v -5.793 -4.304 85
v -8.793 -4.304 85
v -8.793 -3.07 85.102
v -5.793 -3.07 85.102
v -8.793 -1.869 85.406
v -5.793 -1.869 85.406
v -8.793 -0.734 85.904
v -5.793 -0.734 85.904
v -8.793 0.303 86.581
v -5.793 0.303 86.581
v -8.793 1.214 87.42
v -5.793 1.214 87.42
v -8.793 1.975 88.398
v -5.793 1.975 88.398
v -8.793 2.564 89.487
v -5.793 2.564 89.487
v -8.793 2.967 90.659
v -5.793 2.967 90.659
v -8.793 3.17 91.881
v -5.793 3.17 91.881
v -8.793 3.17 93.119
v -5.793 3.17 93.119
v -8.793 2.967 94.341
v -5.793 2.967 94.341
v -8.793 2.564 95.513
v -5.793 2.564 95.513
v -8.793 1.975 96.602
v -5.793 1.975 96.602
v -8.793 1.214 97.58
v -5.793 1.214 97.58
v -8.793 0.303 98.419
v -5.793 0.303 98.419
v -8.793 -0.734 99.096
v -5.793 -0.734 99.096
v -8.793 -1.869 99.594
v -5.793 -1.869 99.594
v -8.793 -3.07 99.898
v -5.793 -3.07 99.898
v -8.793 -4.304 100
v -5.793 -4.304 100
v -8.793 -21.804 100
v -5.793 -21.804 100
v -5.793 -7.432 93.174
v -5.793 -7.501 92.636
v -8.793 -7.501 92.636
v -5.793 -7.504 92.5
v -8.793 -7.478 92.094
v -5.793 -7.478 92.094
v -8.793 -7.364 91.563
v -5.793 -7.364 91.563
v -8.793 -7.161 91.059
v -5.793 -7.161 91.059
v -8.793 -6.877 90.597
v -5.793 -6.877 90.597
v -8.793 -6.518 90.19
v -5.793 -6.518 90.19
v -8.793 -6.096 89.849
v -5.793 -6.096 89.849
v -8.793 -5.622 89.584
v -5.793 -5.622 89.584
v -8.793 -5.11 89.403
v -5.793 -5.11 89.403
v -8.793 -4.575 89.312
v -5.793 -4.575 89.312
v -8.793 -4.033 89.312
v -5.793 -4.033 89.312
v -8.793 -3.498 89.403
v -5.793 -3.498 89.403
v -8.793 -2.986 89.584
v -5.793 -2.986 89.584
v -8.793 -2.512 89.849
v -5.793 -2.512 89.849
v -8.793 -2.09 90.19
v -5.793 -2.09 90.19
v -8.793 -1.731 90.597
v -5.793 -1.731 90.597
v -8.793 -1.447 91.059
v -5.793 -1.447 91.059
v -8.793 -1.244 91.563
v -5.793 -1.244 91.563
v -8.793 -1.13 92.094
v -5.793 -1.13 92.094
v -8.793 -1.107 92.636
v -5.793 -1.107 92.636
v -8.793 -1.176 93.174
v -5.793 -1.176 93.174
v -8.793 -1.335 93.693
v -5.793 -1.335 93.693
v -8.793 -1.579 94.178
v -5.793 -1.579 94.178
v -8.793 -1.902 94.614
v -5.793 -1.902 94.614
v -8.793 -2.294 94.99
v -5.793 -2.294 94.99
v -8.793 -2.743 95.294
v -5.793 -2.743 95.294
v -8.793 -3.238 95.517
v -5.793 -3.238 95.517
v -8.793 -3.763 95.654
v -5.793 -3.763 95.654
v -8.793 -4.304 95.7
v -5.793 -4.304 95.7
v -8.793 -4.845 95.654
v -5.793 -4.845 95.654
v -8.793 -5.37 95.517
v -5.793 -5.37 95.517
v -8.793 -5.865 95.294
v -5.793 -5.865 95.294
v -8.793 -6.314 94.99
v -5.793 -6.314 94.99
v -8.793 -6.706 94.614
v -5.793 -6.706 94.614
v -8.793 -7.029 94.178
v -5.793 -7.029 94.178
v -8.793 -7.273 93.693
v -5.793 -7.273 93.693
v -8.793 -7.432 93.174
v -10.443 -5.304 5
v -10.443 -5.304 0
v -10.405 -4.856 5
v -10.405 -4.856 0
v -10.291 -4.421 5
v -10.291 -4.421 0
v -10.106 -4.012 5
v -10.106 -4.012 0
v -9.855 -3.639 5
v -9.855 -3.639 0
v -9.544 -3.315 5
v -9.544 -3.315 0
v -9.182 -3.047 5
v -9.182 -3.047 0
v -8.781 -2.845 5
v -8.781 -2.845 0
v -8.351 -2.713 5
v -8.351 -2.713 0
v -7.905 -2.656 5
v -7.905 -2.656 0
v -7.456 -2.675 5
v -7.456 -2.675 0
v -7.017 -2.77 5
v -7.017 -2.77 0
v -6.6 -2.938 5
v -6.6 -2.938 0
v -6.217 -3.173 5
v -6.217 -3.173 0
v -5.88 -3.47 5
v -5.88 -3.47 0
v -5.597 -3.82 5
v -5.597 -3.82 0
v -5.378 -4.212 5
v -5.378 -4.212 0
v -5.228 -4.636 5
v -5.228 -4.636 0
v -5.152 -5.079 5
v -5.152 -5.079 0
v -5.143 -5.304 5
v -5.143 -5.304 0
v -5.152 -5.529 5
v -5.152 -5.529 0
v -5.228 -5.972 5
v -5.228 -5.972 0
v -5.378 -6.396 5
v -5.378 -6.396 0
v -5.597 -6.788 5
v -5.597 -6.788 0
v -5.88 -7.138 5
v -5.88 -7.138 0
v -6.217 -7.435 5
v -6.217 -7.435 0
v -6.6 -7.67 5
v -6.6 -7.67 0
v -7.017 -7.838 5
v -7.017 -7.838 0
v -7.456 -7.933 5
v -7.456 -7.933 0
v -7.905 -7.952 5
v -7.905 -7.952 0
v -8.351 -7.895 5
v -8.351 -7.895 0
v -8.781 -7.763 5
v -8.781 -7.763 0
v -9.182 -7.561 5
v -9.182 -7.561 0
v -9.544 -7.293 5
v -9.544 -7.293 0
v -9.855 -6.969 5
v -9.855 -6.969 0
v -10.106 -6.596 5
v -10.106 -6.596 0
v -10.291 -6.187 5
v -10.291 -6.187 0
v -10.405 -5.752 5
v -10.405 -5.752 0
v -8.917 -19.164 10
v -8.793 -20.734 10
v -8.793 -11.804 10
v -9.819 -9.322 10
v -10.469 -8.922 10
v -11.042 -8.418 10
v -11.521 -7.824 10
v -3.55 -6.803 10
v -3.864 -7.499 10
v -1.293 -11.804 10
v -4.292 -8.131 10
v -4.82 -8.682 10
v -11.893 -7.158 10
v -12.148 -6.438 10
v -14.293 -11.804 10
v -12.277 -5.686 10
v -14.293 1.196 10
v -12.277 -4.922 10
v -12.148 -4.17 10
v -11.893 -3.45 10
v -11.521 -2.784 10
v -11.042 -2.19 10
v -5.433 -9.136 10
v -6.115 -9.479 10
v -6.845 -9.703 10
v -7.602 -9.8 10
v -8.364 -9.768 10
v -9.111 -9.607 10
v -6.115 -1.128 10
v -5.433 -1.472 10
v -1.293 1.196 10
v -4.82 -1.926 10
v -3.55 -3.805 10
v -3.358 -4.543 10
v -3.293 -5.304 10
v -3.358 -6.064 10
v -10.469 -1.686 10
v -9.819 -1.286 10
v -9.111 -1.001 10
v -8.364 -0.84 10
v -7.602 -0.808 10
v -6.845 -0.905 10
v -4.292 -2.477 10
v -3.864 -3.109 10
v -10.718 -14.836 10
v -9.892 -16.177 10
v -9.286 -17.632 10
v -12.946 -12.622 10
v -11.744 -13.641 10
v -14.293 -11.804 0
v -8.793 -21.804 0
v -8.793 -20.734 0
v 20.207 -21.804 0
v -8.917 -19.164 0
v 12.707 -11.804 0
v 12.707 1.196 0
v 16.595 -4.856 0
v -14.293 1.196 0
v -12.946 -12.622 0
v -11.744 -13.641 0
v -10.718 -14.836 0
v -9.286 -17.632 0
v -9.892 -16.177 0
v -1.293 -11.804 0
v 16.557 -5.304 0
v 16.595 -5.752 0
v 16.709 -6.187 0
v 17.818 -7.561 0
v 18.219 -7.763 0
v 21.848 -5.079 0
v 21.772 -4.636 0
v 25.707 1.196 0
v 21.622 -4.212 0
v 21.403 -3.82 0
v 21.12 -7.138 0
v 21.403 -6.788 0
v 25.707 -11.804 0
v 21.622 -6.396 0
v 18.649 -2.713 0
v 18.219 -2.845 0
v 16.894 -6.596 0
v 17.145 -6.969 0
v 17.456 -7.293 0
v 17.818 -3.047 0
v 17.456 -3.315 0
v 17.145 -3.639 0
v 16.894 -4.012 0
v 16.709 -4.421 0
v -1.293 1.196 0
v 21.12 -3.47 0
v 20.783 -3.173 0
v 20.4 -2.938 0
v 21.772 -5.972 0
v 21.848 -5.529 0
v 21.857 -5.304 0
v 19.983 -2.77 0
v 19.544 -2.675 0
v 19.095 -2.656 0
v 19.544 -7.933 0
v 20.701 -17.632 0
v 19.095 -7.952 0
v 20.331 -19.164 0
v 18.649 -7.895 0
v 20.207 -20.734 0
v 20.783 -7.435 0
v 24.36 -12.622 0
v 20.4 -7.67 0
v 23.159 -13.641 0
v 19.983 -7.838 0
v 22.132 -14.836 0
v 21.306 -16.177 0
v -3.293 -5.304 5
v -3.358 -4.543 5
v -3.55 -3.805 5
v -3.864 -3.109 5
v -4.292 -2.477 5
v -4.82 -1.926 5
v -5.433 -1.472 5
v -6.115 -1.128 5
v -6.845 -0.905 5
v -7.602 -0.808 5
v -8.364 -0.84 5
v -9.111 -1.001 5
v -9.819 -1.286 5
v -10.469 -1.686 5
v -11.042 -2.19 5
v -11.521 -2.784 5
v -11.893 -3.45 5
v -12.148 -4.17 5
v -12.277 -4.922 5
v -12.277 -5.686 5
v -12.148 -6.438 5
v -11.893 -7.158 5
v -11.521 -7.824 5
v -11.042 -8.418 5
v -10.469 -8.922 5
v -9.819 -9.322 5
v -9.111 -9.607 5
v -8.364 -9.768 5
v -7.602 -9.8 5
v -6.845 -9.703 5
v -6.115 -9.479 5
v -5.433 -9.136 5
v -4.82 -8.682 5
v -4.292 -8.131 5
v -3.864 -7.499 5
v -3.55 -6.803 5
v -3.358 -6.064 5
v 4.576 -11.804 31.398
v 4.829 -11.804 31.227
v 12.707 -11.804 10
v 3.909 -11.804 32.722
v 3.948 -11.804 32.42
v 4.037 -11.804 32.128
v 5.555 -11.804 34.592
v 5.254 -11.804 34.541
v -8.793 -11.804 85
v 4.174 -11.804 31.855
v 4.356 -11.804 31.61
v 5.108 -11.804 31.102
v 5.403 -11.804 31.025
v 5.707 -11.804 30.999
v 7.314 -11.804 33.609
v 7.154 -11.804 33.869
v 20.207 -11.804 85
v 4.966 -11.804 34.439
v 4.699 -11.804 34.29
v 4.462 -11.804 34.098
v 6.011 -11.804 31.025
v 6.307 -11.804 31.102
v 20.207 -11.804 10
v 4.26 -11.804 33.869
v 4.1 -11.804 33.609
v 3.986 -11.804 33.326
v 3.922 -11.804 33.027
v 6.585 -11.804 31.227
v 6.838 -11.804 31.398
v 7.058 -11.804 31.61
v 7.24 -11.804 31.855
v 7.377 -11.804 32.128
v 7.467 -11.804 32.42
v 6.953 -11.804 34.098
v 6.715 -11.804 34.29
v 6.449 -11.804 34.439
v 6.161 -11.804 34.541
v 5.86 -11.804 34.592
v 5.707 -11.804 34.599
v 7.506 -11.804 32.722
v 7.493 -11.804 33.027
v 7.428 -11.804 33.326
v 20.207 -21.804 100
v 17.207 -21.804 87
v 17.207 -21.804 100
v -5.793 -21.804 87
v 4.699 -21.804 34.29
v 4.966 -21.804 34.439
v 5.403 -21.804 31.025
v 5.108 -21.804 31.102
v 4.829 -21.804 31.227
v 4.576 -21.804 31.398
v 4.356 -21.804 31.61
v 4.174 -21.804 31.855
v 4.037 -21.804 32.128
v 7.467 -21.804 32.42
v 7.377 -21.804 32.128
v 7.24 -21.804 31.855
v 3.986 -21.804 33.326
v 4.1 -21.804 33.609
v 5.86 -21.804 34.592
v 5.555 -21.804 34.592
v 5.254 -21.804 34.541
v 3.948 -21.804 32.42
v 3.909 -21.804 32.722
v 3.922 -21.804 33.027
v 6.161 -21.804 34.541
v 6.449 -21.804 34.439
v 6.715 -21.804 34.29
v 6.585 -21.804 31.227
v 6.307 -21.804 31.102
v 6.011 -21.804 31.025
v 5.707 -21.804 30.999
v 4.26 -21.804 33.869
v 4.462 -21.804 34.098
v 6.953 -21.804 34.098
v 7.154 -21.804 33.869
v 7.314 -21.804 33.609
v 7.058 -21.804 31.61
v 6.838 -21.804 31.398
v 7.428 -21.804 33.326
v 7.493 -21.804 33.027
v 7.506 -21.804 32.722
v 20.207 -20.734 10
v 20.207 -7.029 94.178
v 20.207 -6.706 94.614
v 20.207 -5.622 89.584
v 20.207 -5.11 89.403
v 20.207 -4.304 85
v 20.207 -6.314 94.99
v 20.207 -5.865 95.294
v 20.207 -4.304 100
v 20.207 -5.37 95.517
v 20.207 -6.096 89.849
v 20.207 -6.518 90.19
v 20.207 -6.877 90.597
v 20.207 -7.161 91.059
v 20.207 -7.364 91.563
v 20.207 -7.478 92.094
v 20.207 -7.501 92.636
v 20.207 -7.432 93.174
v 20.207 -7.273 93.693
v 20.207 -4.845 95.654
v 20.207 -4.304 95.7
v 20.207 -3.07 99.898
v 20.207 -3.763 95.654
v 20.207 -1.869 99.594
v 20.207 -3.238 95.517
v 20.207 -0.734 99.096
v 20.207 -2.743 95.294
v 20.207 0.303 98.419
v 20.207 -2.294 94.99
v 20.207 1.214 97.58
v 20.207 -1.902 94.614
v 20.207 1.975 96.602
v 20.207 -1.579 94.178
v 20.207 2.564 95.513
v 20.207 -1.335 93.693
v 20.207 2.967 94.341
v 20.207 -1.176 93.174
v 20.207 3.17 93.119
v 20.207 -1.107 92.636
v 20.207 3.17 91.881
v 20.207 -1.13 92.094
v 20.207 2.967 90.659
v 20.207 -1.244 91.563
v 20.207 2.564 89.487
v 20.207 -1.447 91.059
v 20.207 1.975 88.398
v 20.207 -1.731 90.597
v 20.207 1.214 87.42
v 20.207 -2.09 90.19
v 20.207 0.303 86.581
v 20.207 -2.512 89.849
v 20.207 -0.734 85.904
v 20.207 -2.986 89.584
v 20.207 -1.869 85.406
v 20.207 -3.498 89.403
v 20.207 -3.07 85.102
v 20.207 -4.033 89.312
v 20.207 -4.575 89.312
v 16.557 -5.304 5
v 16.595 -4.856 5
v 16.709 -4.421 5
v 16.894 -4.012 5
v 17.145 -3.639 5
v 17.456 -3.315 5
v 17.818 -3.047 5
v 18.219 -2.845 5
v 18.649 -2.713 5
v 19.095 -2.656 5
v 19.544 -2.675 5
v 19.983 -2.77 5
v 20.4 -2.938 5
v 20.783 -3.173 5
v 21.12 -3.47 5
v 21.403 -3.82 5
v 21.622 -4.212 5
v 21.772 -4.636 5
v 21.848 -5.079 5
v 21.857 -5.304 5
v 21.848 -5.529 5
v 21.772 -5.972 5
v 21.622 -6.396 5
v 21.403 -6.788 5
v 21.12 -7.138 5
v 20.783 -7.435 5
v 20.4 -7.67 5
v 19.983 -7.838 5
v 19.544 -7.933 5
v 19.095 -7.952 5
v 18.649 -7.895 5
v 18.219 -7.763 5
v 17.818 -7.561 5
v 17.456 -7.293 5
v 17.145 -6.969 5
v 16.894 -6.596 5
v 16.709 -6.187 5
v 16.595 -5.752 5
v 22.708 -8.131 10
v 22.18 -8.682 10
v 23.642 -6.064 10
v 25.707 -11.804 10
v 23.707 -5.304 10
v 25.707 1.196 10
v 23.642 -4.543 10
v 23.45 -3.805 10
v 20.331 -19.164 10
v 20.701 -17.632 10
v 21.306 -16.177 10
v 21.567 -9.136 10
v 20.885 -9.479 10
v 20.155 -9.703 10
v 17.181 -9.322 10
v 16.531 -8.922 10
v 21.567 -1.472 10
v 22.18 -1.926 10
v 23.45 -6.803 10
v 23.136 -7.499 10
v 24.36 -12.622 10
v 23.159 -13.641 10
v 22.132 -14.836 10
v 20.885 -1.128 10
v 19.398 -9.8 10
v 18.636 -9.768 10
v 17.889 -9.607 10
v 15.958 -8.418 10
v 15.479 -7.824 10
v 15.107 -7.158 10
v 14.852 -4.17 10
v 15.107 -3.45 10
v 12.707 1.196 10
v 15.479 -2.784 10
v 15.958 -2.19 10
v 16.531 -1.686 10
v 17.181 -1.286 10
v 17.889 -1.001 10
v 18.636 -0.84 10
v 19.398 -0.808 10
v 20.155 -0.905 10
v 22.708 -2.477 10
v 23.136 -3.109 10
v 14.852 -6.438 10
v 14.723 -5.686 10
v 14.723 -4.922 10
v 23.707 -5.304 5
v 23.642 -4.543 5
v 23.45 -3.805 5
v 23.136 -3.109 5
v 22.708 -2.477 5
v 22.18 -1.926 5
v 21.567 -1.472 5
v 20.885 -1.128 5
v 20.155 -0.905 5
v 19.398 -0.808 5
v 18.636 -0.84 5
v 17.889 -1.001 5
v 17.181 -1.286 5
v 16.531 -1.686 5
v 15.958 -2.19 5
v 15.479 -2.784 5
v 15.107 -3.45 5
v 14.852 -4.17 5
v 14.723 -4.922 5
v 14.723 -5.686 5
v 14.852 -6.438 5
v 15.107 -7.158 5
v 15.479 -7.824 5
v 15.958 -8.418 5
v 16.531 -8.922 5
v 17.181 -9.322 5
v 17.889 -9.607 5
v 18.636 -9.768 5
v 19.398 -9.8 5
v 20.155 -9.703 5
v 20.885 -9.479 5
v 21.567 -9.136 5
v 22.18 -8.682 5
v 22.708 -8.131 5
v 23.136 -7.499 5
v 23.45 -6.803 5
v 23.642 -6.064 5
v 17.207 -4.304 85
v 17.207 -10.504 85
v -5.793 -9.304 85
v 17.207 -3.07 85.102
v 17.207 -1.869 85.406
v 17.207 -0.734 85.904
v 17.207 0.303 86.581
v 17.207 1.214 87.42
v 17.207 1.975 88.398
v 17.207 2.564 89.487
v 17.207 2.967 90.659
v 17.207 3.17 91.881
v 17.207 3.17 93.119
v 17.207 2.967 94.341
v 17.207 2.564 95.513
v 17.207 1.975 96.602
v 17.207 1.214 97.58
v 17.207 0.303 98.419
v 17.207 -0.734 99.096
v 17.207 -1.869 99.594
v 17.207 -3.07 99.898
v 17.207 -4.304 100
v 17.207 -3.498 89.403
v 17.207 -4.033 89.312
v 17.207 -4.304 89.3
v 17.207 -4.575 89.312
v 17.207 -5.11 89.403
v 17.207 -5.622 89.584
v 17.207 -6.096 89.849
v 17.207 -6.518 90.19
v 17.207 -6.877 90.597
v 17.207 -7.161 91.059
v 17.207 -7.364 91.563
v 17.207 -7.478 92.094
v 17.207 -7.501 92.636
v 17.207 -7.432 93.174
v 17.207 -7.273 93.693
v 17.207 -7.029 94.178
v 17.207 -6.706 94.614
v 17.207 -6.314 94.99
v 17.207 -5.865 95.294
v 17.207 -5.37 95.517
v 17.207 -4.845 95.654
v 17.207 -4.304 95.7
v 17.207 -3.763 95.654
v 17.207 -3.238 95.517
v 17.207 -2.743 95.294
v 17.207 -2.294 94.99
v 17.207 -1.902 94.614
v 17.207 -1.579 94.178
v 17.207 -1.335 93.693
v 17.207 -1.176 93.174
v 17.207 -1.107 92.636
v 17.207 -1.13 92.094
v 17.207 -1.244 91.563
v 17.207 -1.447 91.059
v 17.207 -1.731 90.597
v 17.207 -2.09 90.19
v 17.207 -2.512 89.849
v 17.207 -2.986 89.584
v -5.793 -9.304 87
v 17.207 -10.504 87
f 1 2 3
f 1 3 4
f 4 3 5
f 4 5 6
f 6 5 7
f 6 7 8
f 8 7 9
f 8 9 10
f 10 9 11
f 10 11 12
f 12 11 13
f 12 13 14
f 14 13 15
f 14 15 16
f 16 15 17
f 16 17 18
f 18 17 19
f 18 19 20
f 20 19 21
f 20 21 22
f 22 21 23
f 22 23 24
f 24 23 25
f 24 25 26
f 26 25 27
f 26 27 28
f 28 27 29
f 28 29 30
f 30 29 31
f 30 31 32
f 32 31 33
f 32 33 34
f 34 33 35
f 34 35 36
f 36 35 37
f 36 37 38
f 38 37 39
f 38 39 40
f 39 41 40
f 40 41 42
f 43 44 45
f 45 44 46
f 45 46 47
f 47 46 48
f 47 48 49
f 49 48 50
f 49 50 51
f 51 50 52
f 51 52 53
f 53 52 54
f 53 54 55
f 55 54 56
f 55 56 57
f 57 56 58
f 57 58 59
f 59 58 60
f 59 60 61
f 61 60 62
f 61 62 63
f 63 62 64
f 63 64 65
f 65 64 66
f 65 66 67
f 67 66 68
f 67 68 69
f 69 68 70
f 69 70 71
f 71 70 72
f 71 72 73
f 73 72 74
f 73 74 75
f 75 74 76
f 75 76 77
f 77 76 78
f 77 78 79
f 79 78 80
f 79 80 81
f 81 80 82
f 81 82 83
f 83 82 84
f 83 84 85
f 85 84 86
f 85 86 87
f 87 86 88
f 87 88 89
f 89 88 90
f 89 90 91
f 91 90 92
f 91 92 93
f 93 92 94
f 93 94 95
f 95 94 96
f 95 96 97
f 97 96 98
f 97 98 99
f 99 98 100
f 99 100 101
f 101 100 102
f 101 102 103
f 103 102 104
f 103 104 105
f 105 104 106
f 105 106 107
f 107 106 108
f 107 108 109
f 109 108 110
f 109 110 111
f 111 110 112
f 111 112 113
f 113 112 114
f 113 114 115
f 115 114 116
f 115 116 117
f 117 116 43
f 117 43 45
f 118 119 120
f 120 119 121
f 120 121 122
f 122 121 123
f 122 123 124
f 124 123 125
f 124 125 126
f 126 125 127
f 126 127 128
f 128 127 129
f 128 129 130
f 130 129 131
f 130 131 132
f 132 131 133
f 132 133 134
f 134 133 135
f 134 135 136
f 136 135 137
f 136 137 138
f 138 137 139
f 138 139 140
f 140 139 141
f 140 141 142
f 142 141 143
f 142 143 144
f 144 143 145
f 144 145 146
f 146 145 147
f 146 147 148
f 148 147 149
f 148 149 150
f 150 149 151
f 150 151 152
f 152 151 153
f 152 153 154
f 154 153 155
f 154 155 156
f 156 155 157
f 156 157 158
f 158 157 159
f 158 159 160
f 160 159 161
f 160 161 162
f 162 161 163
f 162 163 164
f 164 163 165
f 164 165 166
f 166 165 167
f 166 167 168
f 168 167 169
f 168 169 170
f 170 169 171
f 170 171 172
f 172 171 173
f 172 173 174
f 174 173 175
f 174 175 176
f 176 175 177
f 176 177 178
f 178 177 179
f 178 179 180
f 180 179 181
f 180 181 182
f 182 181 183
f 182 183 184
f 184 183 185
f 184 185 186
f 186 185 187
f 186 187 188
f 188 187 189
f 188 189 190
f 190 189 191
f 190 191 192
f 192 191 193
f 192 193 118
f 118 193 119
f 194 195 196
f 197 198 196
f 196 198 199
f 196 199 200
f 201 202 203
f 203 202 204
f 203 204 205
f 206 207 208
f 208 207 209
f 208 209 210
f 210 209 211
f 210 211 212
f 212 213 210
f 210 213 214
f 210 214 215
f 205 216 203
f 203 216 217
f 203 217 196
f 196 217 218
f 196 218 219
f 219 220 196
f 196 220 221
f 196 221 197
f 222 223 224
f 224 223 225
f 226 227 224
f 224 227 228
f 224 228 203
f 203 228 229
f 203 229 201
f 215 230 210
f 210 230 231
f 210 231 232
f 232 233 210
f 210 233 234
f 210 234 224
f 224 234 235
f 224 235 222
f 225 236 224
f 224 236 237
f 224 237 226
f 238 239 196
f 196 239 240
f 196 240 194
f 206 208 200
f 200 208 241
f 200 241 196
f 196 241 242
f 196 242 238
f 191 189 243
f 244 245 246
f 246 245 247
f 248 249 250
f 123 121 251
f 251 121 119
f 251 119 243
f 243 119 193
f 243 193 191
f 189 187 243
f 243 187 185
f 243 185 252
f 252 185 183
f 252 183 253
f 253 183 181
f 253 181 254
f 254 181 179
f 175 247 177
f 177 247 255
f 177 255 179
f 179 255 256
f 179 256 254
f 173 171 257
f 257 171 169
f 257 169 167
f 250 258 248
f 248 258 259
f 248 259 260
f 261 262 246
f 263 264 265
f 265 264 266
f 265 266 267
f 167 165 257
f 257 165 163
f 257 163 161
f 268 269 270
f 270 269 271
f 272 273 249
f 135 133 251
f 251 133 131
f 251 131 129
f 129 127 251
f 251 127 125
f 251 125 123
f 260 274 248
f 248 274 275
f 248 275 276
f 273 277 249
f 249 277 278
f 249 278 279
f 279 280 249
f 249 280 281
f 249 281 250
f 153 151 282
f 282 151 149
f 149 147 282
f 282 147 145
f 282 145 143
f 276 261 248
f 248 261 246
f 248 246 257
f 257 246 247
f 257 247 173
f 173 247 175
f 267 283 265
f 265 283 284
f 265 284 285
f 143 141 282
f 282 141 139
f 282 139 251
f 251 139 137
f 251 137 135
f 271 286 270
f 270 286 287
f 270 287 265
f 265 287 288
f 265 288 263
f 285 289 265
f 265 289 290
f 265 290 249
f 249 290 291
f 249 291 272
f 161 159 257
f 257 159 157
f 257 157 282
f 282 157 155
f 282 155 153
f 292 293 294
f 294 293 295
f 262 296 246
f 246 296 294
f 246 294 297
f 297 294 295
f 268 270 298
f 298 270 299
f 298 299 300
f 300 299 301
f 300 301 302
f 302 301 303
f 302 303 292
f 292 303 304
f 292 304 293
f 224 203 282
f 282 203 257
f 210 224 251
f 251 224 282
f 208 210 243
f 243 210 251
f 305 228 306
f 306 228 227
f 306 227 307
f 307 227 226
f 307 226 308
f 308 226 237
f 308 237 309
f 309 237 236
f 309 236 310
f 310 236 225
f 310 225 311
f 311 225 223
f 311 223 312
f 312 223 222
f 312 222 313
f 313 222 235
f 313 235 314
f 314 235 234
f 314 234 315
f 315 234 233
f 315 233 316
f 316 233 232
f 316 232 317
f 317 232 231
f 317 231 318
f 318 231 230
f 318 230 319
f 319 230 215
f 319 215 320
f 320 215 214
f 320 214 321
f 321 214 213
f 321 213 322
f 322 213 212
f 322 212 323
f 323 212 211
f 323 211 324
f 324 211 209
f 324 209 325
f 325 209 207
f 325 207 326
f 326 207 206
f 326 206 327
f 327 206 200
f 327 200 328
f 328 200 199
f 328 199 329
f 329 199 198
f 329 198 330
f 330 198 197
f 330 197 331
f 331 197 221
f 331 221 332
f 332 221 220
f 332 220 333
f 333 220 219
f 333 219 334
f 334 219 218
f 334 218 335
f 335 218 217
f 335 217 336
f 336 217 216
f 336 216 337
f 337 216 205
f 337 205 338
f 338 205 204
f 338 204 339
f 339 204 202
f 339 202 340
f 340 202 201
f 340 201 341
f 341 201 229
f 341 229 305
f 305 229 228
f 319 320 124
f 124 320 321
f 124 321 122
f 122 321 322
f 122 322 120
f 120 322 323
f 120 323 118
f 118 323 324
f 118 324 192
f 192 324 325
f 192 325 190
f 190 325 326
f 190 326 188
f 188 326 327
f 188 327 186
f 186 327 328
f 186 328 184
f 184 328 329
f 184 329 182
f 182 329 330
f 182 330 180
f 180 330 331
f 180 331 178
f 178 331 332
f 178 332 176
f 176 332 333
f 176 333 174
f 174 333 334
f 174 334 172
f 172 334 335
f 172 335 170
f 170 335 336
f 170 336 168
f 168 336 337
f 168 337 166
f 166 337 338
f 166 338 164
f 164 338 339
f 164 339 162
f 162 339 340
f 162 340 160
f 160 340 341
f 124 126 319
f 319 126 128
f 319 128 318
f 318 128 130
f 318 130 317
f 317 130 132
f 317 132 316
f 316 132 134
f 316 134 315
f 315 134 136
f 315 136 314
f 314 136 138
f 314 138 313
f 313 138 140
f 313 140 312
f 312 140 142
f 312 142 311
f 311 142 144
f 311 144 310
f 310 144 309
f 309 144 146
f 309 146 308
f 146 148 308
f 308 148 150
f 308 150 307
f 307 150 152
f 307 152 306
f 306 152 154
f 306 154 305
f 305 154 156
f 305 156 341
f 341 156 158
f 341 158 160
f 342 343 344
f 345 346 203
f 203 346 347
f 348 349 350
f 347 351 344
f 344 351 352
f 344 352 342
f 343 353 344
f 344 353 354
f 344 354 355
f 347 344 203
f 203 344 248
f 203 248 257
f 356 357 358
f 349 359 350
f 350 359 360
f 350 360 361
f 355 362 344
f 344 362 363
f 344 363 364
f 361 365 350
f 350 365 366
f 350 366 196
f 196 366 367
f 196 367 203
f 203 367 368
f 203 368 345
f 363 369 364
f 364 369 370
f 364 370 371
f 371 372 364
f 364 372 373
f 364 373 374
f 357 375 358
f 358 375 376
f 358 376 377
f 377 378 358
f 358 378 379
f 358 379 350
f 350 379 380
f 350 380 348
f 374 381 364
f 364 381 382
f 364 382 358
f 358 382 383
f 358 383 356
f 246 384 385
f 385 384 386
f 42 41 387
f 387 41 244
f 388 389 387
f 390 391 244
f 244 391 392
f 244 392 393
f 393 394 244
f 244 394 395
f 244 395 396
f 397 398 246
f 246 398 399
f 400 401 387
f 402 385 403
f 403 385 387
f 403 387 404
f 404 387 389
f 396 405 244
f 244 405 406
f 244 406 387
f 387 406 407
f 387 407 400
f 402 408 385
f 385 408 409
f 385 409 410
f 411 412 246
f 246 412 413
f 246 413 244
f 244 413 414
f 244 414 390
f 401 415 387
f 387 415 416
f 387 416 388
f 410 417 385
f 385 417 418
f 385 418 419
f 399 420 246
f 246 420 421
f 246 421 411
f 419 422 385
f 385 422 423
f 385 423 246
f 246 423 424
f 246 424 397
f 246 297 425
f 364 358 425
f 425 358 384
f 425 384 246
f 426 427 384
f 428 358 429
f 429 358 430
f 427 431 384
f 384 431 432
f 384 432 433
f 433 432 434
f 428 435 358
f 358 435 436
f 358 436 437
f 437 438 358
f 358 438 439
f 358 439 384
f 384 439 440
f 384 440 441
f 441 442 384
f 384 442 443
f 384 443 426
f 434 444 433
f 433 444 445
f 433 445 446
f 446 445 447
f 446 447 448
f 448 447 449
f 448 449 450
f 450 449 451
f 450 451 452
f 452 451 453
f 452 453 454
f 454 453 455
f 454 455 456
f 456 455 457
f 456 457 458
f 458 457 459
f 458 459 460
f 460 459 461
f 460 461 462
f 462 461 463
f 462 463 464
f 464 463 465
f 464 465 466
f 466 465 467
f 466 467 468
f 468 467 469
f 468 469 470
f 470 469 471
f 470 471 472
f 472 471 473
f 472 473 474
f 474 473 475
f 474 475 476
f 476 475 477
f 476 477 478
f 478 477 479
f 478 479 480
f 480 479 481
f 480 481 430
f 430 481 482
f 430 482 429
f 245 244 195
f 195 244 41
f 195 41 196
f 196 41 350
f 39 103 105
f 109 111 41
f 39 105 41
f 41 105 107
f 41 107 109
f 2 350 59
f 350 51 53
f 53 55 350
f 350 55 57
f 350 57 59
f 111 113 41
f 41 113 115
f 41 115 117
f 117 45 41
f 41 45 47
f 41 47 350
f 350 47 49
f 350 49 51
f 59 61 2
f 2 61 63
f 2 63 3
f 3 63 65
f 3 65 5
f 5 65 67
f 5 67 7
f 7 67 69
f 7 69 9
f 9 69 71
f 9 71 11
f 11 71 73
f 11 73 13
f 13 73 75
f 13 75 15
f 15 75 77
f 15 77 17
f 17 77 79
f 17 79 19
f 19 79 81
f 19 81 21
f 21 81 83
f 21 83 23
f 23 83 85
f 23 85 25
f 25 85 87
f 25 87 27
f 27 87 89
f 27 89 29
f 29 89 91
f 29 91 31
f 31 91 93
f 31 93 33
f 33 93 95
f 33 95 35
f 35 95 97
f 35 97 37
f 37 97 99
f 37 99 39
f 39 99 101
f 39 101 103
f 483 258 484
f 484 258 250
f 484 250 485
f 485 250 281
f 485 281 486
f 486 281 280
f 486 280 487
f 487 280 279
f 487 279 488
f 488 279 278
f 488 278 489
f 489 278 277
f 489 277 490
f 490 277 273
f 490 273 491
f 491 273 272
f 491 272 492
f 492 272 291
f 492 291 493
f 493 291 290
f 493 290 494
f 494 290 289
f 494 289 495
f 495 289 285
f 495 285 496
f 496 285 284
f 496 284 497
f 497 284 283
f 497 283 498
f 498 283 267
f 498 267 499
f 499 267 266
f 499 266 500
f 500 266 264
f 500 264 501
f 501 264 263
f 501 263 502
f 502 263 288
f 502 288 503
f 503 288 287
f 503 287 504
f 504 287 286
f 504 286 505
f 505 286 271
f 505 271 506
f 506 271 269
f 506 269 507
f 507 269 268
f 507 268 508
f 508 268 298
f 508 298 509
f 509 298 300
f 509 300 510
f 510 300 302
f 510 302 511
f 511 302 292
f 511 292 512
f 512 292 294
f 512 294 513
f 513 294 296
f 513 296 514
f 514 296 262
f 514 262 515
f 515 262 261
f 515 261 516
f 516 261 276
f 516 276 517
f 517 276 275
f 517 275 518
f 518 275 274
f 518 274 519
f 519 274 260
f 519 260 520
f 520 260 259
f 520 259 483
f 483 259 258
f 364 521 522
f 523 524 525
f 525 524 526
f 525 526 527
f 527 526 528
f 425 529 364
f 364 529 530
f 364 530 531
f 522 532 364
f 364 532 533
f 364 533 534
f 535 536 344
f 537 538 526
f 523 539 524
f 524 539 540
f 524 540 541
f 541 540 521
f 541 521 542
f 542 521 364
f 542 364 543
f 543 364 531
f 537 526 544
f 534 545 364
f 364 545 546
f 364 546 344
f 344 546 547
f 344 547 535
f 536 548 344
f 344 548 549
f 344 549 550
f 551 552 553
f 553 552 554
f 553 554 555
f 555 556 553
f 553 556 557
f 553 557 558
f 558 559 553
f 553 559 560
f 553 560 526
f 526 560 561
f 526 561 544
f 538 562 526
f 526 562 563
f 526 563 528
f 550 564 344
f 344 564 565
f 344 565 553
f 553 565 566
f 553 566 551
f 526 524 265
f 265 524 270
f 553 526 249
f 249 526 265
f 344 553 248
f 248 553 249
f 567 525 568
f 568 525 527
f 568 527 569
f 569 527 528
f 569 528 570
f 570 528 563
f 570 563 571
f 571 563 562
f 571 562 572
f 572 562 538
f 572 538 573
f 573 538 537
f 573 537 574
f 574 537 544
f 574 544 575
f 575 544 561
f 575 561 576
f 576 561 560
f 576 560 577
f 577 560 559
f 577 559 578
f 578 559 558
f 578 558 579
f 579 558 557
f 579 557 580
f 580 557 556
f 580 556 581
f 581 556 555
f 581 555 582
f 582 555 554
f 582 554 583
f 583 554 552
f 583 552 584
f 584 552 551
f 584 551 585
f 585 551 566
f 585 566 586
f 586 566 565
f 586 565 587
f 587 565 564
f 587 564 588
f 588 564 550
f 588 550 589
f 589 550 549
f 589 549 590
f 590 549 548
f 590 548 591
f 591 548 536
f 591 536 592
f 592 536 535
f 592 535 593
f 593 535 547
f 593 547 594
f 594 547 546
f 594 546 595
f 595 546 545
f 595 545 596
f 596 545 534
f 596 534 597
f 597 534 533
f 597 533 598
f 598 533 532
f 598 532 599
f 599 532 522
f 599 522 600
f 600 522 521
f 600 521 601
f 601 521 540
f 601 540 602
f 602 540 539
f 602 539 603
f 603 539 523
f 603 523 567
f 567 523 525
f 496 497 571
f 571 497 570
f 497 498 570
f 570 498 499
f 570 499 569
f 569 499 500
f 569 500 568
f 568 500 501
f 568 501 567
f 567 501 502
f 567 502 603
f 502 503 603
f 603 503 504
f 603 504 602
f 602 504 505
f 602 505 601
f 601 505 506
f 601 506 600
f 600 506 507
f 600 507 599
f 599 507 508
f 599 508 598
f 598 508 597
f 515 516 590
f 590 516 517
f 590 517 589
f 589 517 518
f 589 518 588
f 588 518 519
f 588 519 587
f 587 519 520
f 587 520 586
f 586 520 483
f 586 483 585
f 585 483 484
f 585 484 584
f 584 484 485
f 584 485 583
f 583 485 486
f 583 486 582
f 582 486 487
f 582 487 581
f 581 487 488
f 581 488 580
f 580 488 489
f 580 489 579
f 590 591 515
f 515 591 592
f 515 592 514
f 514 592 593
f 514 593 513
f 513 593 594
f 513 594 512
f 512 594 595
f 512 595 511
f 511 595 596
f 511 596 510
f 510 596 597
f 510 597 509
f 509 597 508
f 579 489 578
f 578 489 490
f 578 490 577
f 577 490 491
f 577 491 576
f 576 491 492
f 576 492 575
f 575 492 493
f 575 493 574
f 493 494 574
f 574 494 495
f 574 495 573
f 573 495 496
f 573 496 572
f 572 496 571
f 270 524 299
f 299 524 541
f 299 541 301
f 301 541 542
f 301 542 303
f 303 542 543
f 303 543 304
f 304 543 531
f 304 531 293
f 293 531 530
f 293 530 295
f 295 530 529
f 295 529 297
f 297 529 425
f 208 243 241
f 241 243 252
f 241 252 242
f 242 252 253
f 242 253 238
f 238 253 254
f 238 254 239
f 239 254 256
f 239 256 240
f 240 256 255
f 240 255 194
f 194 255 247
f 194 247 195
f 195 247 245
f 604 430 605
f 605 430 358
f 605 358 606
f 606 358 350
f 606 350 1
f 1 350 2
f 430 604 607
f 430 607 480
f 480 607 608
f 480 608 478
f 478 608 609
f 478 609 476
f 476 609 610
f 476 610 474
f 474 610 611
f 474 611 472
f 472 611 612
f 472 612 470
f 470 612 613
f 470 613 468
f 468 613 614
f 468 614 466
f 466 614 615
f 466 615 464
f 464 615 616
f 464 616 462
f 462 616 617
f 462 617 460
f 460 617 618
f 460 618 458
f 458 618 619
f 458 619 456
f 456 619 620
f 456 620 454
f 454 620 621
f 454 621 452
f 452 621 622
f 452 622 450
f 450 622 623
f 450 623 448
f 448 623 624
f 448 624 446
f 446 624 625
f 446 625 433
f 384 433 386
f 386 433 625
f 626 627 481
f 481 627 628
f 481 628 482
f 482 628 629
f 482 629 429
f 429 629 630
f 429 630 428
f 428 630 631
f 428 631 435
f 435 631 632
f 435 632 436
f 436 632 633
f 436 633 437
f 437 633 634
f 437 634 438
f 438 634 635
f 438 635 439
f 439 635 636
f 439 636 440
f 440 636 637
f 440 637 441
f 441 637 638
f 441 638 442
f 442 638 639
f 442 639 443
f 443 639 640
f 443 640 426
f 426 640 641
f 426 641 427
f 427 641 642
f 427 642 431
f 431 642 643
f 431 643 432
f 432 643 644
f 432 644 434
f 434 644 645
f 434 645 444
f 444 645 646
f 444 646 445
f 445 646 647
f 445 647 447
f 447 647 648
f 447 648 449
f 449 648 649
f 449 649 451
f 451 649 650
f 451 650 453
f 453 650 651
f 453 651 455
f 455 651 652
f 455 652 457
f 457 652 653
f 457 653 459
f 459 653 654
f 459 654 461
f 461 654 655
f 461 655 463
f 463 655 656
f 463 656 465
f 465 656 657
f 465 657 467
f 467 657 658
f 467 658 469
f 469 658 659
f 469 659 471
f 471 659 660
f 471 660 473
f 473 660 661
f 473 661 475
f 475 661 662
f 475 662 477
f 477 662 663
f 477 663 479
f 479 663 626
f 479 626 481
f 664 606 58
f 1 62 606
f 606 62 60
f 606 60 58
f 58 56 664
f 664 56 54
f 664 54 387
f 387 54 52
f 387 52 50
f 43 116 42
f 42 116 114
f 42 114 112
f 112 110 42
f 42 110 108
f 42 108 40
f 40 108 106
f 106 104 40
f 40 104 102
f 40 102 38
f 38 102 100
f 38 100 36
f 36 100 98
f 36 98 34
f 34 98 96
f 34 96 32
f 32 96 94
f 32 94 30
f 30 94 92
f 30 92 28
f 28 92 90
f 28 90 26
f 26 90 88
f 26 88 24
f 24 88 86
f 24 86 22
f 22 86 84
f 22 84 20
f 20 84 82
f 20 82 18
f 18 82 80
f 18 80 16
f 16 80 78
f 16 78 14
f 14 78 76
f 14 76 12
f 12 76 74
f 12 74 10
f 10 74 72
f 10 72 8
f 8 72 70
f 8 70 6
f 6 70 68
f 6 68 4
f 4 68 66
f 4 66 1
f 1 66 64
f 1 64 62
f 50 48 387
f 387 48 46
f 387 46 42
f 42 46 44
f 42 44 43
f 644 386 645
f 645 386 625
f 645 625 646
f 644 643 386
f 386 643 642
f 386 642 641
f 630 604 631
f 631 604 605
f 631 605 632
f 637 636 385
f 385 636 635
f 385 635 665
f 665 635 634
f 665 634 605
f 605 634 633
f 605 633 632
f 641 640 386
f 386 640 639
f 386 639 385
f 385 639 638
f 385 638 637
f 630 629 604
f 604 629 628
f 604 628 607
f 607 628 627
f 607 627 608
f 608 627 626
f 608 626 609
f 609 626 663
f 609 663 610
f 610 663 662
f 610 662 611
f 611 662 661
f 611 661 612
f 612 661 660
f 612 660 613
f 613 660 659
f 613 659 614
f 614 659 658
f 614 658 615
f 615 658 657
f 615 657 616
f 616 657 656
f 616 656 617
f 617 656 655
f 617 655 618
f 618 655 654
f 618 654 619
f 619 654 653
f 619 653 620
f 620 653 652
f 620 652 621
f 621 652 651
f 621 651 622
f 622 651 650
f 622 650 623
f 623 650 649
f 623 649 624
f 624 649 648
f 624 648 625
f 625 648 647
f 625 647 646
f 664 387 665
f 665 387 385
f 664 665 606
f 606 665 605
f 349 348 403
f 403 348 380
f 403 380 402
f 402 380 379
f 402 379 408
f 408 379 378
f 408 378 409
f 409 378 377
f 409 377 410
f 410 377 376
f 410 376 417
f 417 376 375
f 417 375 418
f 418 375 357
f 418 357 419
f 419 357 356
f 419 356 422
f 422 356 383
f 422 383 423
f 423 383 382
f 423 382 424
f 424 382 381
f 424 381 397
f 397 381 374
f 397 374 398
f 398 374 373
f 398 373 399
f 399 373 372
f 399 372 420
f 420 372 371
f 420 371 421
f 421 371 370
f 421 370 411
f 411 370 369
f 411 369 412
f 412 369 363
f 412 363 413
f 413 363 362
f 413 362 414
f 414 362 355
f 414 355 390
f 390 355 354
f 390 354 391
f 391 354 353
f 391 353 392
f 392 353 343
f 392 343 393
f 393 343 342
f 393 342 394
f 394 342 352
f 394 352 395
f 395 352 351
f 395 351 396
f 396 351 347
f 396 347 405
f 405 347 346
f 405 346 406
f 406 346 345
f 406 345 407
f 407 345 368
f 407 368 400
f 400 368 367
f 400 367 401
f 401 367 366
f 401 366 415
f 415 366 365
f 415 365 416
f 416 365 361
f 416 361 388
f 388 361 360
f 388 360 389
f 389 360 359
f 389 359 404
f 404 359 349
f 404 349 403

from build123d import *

# Parameters (mm, degrees)
SKETCH_1_W           = 13
SKETCH_1_H           = 13
SKETCH_1_R           = 2.65
EXTRUDE_1_DEPTH      = 10
EXTRUDE_1_2_DEPTH    = 10
SKETCH_2_R           = 4.5
CUT_EXTRUDE_2_DEPTH  = 5
EXTRUDE_2_DEPTH      = 14.5
EXTRUDE_2_DEPTH_BACK = 14.5
SKETCH_4_W           = 85
SKETCH_4_H           = 10
FILLET_6_R           = 10
SKETCH_9_R           = 3.2
EXTRUDE_3_DEPTH      = 29
CUT_EXTRUDE_6_DEPTH  = 13
CUT_EXTRUDE_7_DEPTH  = 5
SKETCH_12_R          = 1.8
CUT_EXTRUDE_8_DEPTH  = 12


with BuildPart() as part:
    # 草图1 → 凸台-拉伸1 (new body)
    with BuildSketch(Plane.XY):
        with Locations((-7.792845361, -5.303981357)):
            Rectangle(SKETCH_1_W, SKETCH_1_H)
        with Locations((-7.792845361, -5.303981357)):
            Circle(SKETCH_1_R, mode=Mode.SUBTRACT)
    extrude(amount=EXTRUDE_1_DEPTH)


with BuildPart() as body_2:
    # 草图1 → Extrude 1 2 (new body)
    with BuildSketch(Plane.XY):
        Polygon((12.707154639, 1.196018643), (25.707154639, 1.196018643), (25.707154639, -5.303981357), (25.707154639, -11.803981357), (12.707154639, -11.803981357), align=None)
        with Locations((19.207154639, -5.303981357)):
            Circle(SKETCH_1_R, mode=Mode.SUBTRACT)
    extrude(amount=EXTRUDE_1_2_DEPTH)


with BuildPart() as cut_extrude_2_tool:
    # 草图2 → 切除-拉伸2 (new body)
    with BuildSketch(Plane.XY.offset(10)):
        with Locations((-7.792845361, -5.303981357)):
            Circle(SKETCH_2_R)
        with Locations((19.207154639, -5.303981357)):
            Circle(SKETCH_2_R)
    extrude(amount=-CUT_EXTRUDE_2_DEPTH)


with BuildPart() as part_1:
    add(part.part)

    # 切除-拉伸2: cut by cut_extrude_2_tool
    add(cut_extrude_2_tool.part, mode=Mode.SUBTRACT)



with BuildPart() as body_2_1:
    add(body_2.part)

    # 切除-拉伸2: cut by cut_extrude_2_tool
    add(cut_extrude_2_tool.part, mode=Mode.SUBTRACT)


with BuildPart() as part_2:
    add(part_1.part)

    add(body_2_1.part)  # 凸台-拉伸2 merges body 2
    # 草图4 → 凸台-拉伸2 (add, two sides: drawn at the far end of the back side and taken through both)
    with BuildSketch(Plane.ZY.offset(-5.707154639).offset(-EXTRUDE_2_DEPTH_BACK)):
        with Locations((42.5, -16.803981357)):
            Rectangle(SKETCH_4_W, SKETCH_4_H)
    extrude(amount=EXTRUDE_2_DEPTH + EXTRUDE_2_DEPTH_BACK)

    # 圆角6
    # the kernel refuses this fillet: 10 mm, written as the material it adds along each edge
    with BuildSketch(Plane(origin=(20.207154639, -11.803981357, 0), x_dir=(0, -1, 0), z_dir=(0, 0, 1))) as fillet_6_piece_1:
        with BuildLine():
            CenterArc((8.93028555, 10), FILLET_6_R, 206.74368395, 63.25631605)
            Line((0, 5.5), (0, 0))
            Line((0, 0), (8.93028555, 0))
        make_face()
    extrude(amount=10)
    with BuildSketch(Plane(origin=(-8.792845361, -11.803981357, 0), x_dir=(-1, 0, 0), z_dir=(0, 0, 1))) as fillet_6_piece_2:
        with BuildLine():
            CenterArc((10, 8.93028555), FILLET_6_R, 180, 63.25631605)
            Line((0, 8.93028555), (0, 0))
            Line((0, 0), (5.5, 0))
        make_face()
    extrude(amount=10)

    # 草图9 → 凸台-拉伸3 (add)
    with BuildSketch(Plane.ZY.offset(8.792845361)):
        with BuildLine():
            Line((85, -21.803981357), (100, -21.803981357))
            Line((100, -21.803981357), (100, -4.303981357))
            ThreePointArc((100, -4.303981357), (92.5, 3.196018643), (85, -4.303981357))
            Line((85, -4.303981357), (85, -21.803981357))
        make_face()
        with Locations((92.5, -4.303981357)):
            Circle(SKETCH_9_R, mode=Mode.SUBTRACT)
    extrude(amount=-EXTRUDE_3_DEPTH)

    # 草图10 → 切除-拉伸6 (cut)
    with BuildSketch(Plane.XY.offset(100)):
        Polygon((17.207154639, 3.196018643), (17.207154639, -19.803981357), (17.207154639, -21.803981357), (-5.792845361, -21.803981357), (-5.792845361, -19.803981357), (-5.792845361, 3.196018643), align=None)
    extrude(amount=-CUT_EXTRUDE_6_DEPTH, mode=Mode.SUBTRACT)

    # 草图11 → 切除-拉伸7 (cut)
    with BuildSketch(Plane.XY.offset(87)):
        Polygon((-5.792845361, 3.128632746), (-5.792845361, -9.303981357), (17.207154639, -10.5044716), (17.207154639, 3.128632746), align=None)
    extrude(amount=-CUT_EXTRUDE_7_DEPTH, mode=Mode.SUBTRACT)

    # 草图12 → 切除-拉伸8 (cut)
    with BuildSketch(Plane.XZ.offset(21.803981357)):
        with Locations(Location((5.707154639, 32.798781039, 0), (0, 0, 270))):
            Circle(SKETCH_12_R)
        with Locations((5.707154639, 95.098664418)):
            Circle(SKETCH_12_R)
    extrude(amount=-CUT_EXTRUDE_8_DEPTH, mode=Mode.SUBTRACT)


solid = part_2.part
